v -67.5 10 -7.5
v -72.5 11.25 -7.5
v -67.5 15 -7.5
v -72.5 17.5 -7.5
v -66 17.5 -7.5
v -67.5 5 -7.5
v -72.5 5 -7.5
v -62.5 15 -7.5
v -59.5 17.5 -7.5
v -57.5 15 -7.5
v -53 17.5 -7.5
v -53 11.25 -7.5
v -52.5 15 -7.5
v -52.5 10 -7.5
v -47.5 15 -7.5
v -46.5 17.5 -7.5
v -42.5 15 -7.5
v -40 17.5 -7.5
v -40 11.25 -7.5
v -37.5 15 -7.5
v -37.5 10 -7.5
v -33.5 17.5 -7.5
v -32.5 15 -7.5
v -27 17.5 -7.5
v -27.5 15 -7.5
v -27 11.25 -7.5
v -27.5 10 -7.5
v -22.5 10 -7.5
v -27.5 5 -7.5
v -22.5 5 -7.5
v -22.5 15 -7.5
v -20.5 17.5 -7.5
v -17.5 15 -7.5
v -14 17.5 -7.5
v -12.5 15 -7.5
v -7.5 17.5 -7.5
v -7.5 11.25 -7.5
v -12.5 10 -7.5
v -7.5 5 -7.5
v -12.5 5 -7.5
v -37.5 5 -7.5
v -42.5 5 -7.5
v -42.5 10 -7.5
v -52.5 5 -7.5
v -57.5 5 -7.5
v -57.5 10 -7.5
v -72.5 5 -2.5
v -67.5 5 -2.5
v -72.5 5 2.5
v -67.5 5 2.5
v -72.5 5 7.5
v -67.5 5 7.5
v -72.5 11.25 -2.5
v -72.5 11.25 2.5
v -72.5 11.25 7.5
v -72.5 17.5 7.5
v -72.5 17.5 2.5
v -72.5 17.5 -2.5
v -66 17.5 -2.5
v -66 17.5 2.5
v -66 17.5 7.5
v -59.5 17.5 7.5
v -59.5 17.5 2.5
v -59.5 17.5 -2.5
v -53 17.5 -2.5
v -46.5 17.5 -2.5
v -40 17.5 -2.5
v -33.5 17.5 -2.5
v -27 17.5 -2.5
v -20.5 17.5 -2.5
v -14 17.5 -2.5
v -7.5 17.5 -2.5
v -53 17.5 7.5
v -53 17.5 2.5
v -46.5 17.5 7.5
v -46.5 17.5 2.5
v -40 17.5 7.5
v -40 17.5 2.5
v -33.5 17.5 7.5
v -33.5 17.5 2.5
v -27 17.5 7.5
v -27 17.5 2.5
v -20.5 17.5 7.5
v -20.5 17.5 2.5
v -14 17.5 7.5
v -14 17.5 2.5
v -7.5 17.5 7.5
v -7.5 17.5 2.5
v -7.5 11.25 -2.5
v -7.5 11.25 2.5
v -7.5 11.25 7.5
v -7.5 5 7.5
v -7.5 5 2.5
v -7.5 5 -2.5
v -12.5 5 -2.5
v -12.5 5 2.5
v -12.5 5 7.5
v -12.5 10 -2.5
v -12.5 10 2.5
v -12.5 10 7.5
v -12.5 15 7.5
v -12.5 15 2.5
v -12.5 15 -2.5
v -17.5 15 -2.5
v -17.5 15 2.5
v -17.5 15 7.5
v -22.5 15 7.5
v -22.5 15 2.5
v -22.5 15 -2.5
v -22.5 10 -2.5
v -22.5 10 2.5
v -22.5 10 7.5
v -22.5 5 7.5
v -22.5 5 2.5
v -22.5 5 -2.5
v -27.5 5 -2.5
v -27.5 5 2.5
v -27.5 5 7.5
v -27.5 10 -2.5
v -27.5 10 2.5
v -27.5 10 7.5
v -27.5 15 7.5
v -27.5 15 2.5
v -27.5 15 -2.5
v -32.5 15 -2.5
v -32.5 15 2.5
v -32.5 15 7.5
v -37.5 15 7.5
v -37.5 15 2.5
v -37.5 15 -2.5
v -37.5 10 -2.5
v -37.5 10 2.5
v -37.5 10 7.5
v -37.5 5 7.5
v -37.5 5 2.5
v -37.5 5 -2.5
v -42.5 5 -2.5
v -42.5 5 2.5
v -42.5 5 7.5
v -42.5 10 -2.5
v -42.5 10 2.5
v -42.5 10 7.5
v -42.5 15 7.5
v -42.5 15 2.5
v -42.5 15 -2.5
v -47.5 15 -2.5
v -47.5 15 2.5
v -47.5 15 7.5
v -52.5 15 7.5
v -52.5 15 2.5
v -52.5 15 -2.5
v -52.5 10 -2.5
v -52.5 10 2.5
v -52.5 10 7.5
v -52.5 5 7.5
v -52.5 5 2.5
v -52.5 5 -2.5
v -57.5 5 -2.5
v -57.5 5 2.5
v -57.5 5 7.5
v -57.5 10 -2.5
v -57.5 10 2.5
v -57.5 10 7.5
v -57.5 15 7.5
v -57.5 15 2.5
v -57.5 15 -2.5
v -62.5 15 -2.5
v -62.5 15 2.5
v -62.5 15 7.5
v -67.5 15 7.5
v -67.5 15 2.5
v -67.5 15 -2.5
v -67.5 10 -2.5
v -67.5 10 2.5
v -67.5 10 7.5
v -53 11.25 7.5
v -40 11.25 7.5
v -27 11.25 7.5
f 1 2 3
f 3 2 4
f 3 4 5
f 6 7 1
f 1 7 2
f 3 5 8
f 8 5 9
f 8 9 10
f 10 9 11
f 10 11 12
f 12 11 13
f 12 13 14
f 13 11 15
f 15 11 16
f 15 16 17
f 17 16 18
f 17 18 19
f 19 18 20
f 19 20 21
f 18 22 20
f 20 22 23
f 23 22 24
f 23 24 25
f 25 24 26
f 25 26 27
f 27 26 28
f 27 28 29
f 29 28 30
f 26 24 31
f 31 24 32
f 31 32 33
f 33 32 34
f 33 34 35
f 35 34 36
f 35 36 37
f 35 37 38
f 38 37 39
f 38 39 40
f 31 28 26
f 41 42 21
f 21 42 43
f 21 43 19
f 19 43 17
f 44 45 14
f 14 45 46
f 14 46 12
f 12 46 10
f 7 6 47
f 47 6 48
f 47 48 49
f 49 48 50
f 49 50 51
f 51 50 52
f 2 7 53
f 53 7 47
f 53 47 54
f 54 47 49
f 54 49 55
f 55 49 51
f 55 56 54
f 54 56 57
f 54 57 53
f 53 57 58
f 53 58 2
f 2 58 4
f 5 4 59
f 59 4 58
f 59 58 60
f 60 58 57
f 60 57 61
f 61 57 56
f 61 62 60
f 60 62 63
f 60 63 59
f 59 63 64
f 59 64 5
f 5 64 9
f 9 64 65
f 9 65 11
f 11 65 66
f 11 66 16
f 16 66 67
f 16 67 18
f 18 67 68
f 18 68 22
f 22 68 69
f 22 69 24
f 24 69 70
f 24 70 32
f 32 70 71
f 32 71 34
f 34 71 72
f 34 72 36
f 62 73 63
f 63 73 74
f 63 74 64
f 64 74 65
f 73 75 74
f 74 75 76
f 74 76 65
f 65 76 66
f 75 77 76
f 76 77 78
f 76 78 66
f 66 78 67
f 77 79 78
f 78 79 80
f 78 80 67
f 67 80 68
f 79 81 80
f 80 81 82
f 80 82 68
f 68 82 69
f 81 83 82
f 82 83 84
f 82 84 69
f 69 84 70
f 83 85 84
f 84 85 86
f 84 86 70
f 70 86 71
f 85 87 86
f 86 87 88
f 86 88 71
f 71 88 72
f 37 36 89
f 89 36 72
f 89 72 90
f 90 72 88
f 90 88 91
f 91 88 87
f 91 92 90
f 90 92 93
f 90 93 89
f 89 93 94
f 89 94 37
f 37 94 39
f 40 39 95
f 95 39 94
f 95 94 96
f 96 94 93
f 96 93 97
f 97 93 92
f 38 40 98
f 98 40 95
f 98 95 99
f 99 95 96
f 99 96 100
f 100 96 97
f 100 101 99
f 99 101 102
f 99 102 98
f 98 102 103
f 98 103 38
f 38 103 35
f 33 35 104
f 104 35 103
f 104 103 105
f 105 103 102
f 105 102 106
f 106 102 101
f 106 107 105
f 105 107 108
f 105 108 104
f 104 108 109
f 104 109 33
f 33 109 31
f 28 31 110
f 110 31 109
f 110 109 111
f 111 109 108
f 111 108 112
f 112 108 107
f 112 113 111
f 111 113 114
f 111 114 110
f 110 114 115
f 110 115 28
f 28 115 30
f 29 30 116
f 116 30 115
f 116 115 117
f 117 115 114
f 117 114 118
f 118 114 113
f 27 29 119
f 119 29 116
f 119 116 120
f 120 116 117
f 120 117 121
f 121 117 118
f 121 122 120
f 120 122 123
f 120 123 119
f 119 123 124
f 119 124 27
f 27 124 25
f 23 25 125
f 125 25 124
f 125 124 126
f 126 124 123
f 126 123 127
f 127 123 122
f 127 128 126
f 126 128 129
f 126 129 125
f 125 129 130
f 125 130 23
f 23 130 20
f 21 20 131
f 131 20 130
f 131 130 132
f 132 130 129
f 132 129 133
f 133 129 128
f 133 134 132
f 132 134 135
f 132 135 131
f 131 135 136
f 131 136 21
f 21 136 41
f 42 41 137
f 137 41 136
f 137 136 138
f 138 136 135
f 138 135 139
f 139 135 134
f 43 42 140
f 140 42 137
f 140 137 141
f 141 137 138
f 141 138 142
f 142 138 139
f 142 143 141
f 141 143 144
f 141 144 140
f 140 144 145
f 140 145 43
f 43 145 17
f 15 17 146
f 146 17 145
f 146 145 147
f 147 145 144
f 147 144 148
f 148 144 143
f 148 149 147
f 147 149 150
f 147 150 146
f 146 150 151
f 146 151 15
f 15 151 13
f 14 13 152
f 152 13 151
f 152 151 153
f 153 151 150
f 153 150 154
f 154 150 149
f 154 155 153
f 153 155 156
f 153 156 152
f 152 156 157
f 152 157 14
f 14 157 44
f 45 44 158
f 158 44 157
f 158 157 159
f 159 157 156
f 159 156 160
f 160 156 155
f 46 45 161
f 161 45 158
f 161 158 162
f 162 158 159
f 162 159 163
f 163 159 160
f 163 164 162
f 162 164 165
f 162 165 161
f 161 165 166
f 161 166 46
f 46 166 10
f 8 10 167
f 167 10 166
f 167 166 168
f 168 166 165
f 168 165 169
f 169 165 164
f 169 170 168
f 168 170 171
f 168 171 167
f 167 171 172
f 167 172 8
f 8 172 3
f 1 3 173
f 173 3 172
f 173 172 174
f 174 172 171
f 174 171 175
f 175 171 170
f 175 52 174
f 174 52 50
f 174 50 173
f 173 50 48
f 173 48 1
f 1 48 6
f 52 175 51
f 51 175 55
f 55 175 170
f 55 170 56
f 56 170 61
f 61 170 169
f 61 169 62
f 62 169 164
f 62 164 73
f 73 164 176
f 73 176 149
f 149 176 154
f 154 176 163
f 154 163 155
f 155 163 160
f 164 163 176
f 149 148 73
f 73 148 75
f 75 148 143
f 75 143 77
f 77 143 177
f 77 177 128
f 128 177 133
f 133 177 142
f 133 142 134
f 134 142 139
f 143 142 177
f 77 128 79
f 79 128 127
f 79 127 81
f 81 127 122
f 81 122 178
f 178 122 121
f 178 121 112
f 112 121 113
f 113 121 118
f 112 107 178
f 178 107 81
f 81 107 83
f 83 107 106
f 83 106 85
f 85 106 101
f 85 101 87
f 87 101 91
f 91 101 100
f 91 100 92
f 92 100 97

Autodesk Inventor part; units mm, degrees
ref_plane "YZ Plane" through (0, 0, 0) normal (1, 0, 0) x (0, 1, 0)
ref_plane "XZ Plane" through (0, 0, 0) normal (0, 1, 0) x (-1, 0, 0)
ref_plane "XY Plane" through (0, 0, 0) normal (0, 0, 1) x (1, 0, 0)
sketch "スケッチ1" plane through (0, 0, 0) normal (0, 0, 1) x (1, 0, 0)
  line L0 (0, 0) -> (-15, 0)
  line L1 (-15, 0) -> (-15, 20)
  line L2 (-15, 20) -> (0, 20)
  line L3 (0, 20) -> (0, 0)
  line L4 (0, 0) -> (0, 43.6966) construction
  line L5 (-15, 12.5) -> (-20, 12.5)
  line L6 (-20, 12.5) -> (-20, 0)
  line L7 (-30, 0) -> (-30, 12.5)
  line L8 (-30, 0) -> (-20, 0)
  line L9 (23.8812, 0) -> (-169.724, 0) construction
  line L10 (-45, 0) -> (-45, 12.5)
  line L11 (-45, 0) -> (-35, 0)
  line L12 (-35, 12.5) -> (-35, 0)
  line L13 (-30, 12.5) -> (-35, 12.5)
  line L14 (-60, 0) -> (-60, 12.5)
  line L15 (-60, 0) -> (-50, 0)
  line L16 (-50, 12.5) -> (-50, 0)
  line L17 (-45, 12.5) -> (-50, 12.5)
  line L18 (-75, 0) -> (-75, 12.5)
  line L19 (-75, 0) -> (-65, 0)
  line L20 (-65, 12.5) -> (-65, 0)
  line L21 (-60, 12.5) -> (-65, 12.5)
  line L22 (-75, 0) -> (-80, 0)
  line L23 (-80, 0) -> (-80, 20)
  line L24 (-80, 20) -> (-75, 20)
  line L25 (-75, 20) -> (-75, 0)
  line L26 (-75, 20) -> (-15, 20)
  line L27 (-75, 0) -> (-80, 5)
  line L28 (-75, 0) -> (-67.9289, 0) construction
  line L29 (0, 5) -> (-5, 0)
  line L30 (-40, 30.9864) -> (-40, -18.8288) construction
  line L31 (-42.5, 17.5) -> (-37.5, 17.5)
  line L32 (-37.5, 17.5) -> (-37.5, 5)
  line L33 (-37.5, 5) -> (-42.5, 5)
  line L34 (-42.5, 5) -> (-42.5, 17.5)
  line L35 (-42.5, 17.5) -> (-37.5, 5) construction
  line L36 (-37.5, 17.5) -> (-42.5, 5) construction
  line L37 (-57.5, 5) -> (-57.5, 17.5)
  line L38 (-52.5, 17.5) -> (-52.5, 5)
  line L39 (-52.5, 5) -> (-57.5, 5)
  line L40 (-72.5, 5) -> (-72.5, 17.5)
  line L41 (-67.5, 17.5) -> (-67.5, 5)
  line L42 (-67.5, 5) -> (-72.5, 5)
  line L43 (-27.5, 5) -> (-27.5, 17.5)
  line L44 (-22.5, 17.5) -> (-22.5, 5)
  line L45 (-22.5, 5) -> (-27.5, 5)
  line L46 (-42.5, 5) -> (-42.5, 17.5)
  line L47 (-37.5, 17.5) -> (-37.5, 5)
  line L48 (-37.5, 5) -> (-42.5, 5)
  line L49 (-57.5, 5) -> (-57.5, 17.5)
  line L50 (-52.5, 17.5) -> (-52.5, 5)
  line L51 (-52.5, 5) -> (-57.5, 5)
  line L52 (-12.5, 5) -> (-12.5, 17.5)
  line L53 (-7.5, 17.5) -> (-7.5, 5)
  line L54 (-7.5, 5) -> (-12.5, 5)
  line L55 (-27.5, 5) -> (-27.5, 17.5)
  line L56 (-22.5, 17.5) -> (-22.5, 5)
  line L57 (-22.5, 5) -> (-27.5, 5)
  line L58 (-42.5, 5) -> (-42.5, 17.5)
  line L59 (-37.5, 17.5) -> (-37.5, 5)
  line L60 (-37.5, 5) -> (-42.5, 5)
  line L61 (-72.5, 17.5) -> (-7.5, 17.5)
  line L62 (-72.5, 15) -> (-7.5, 15)
  point P0 (-40, 11.25)
  point P1 (-67.5, 15)
  point P2 (-57.5, 15)
  point P3 (-52.5, 15)
  point P4 (-42.5, 15)
  point P5 (-37.5, 15)
  point P6 (-27.5, 15)
  point P7 (-22.5, 15)
  point P8 (-12.5, 15)
  dimension "d4" = 15
  dimension "d5" = 20
  dimension "d6" = 5
  dimension "d7" = 10
  dimension "d8" = 7.5
  dimension "d9" = 15
  dimension "d10" = 5
  dimension "d11" = 135
  dimension "d12" = 5
  dimension "d13" = 135
  dimension "d17" = 12.5
  dimension "d18" = 5
  dimension "d19" = 5
  dimension "d22" = 15
  dimension "d25" = 15
  dimension "d28" = 2.5
extrude "押し出し1" add sketch "スケッチ1" along normal blind 7.5 contours L62 L44 L61 L1 | L1 L61 L52 L62 | L62 L43 L61 L44 | L44 L45 L43 L62 | L62 L53 L54 L52 | L52 L61 L53 L62 | L62 L32 L61 L43 | L62 L34 L31 L32 | L32 L33 L34 L62 | L62 L38 L61 L34 | L62 L37 L61 L38 | L38 L39 L37 L62 | L62 L41 L61 L37 | L62 L40 L61 L41 | L41 L42 L40 L62
mirror "ミラー1" about plane through (-40, 11.25, 0) normal (0, 0, -1) of "押し出し1"
properties part number "chamber"
